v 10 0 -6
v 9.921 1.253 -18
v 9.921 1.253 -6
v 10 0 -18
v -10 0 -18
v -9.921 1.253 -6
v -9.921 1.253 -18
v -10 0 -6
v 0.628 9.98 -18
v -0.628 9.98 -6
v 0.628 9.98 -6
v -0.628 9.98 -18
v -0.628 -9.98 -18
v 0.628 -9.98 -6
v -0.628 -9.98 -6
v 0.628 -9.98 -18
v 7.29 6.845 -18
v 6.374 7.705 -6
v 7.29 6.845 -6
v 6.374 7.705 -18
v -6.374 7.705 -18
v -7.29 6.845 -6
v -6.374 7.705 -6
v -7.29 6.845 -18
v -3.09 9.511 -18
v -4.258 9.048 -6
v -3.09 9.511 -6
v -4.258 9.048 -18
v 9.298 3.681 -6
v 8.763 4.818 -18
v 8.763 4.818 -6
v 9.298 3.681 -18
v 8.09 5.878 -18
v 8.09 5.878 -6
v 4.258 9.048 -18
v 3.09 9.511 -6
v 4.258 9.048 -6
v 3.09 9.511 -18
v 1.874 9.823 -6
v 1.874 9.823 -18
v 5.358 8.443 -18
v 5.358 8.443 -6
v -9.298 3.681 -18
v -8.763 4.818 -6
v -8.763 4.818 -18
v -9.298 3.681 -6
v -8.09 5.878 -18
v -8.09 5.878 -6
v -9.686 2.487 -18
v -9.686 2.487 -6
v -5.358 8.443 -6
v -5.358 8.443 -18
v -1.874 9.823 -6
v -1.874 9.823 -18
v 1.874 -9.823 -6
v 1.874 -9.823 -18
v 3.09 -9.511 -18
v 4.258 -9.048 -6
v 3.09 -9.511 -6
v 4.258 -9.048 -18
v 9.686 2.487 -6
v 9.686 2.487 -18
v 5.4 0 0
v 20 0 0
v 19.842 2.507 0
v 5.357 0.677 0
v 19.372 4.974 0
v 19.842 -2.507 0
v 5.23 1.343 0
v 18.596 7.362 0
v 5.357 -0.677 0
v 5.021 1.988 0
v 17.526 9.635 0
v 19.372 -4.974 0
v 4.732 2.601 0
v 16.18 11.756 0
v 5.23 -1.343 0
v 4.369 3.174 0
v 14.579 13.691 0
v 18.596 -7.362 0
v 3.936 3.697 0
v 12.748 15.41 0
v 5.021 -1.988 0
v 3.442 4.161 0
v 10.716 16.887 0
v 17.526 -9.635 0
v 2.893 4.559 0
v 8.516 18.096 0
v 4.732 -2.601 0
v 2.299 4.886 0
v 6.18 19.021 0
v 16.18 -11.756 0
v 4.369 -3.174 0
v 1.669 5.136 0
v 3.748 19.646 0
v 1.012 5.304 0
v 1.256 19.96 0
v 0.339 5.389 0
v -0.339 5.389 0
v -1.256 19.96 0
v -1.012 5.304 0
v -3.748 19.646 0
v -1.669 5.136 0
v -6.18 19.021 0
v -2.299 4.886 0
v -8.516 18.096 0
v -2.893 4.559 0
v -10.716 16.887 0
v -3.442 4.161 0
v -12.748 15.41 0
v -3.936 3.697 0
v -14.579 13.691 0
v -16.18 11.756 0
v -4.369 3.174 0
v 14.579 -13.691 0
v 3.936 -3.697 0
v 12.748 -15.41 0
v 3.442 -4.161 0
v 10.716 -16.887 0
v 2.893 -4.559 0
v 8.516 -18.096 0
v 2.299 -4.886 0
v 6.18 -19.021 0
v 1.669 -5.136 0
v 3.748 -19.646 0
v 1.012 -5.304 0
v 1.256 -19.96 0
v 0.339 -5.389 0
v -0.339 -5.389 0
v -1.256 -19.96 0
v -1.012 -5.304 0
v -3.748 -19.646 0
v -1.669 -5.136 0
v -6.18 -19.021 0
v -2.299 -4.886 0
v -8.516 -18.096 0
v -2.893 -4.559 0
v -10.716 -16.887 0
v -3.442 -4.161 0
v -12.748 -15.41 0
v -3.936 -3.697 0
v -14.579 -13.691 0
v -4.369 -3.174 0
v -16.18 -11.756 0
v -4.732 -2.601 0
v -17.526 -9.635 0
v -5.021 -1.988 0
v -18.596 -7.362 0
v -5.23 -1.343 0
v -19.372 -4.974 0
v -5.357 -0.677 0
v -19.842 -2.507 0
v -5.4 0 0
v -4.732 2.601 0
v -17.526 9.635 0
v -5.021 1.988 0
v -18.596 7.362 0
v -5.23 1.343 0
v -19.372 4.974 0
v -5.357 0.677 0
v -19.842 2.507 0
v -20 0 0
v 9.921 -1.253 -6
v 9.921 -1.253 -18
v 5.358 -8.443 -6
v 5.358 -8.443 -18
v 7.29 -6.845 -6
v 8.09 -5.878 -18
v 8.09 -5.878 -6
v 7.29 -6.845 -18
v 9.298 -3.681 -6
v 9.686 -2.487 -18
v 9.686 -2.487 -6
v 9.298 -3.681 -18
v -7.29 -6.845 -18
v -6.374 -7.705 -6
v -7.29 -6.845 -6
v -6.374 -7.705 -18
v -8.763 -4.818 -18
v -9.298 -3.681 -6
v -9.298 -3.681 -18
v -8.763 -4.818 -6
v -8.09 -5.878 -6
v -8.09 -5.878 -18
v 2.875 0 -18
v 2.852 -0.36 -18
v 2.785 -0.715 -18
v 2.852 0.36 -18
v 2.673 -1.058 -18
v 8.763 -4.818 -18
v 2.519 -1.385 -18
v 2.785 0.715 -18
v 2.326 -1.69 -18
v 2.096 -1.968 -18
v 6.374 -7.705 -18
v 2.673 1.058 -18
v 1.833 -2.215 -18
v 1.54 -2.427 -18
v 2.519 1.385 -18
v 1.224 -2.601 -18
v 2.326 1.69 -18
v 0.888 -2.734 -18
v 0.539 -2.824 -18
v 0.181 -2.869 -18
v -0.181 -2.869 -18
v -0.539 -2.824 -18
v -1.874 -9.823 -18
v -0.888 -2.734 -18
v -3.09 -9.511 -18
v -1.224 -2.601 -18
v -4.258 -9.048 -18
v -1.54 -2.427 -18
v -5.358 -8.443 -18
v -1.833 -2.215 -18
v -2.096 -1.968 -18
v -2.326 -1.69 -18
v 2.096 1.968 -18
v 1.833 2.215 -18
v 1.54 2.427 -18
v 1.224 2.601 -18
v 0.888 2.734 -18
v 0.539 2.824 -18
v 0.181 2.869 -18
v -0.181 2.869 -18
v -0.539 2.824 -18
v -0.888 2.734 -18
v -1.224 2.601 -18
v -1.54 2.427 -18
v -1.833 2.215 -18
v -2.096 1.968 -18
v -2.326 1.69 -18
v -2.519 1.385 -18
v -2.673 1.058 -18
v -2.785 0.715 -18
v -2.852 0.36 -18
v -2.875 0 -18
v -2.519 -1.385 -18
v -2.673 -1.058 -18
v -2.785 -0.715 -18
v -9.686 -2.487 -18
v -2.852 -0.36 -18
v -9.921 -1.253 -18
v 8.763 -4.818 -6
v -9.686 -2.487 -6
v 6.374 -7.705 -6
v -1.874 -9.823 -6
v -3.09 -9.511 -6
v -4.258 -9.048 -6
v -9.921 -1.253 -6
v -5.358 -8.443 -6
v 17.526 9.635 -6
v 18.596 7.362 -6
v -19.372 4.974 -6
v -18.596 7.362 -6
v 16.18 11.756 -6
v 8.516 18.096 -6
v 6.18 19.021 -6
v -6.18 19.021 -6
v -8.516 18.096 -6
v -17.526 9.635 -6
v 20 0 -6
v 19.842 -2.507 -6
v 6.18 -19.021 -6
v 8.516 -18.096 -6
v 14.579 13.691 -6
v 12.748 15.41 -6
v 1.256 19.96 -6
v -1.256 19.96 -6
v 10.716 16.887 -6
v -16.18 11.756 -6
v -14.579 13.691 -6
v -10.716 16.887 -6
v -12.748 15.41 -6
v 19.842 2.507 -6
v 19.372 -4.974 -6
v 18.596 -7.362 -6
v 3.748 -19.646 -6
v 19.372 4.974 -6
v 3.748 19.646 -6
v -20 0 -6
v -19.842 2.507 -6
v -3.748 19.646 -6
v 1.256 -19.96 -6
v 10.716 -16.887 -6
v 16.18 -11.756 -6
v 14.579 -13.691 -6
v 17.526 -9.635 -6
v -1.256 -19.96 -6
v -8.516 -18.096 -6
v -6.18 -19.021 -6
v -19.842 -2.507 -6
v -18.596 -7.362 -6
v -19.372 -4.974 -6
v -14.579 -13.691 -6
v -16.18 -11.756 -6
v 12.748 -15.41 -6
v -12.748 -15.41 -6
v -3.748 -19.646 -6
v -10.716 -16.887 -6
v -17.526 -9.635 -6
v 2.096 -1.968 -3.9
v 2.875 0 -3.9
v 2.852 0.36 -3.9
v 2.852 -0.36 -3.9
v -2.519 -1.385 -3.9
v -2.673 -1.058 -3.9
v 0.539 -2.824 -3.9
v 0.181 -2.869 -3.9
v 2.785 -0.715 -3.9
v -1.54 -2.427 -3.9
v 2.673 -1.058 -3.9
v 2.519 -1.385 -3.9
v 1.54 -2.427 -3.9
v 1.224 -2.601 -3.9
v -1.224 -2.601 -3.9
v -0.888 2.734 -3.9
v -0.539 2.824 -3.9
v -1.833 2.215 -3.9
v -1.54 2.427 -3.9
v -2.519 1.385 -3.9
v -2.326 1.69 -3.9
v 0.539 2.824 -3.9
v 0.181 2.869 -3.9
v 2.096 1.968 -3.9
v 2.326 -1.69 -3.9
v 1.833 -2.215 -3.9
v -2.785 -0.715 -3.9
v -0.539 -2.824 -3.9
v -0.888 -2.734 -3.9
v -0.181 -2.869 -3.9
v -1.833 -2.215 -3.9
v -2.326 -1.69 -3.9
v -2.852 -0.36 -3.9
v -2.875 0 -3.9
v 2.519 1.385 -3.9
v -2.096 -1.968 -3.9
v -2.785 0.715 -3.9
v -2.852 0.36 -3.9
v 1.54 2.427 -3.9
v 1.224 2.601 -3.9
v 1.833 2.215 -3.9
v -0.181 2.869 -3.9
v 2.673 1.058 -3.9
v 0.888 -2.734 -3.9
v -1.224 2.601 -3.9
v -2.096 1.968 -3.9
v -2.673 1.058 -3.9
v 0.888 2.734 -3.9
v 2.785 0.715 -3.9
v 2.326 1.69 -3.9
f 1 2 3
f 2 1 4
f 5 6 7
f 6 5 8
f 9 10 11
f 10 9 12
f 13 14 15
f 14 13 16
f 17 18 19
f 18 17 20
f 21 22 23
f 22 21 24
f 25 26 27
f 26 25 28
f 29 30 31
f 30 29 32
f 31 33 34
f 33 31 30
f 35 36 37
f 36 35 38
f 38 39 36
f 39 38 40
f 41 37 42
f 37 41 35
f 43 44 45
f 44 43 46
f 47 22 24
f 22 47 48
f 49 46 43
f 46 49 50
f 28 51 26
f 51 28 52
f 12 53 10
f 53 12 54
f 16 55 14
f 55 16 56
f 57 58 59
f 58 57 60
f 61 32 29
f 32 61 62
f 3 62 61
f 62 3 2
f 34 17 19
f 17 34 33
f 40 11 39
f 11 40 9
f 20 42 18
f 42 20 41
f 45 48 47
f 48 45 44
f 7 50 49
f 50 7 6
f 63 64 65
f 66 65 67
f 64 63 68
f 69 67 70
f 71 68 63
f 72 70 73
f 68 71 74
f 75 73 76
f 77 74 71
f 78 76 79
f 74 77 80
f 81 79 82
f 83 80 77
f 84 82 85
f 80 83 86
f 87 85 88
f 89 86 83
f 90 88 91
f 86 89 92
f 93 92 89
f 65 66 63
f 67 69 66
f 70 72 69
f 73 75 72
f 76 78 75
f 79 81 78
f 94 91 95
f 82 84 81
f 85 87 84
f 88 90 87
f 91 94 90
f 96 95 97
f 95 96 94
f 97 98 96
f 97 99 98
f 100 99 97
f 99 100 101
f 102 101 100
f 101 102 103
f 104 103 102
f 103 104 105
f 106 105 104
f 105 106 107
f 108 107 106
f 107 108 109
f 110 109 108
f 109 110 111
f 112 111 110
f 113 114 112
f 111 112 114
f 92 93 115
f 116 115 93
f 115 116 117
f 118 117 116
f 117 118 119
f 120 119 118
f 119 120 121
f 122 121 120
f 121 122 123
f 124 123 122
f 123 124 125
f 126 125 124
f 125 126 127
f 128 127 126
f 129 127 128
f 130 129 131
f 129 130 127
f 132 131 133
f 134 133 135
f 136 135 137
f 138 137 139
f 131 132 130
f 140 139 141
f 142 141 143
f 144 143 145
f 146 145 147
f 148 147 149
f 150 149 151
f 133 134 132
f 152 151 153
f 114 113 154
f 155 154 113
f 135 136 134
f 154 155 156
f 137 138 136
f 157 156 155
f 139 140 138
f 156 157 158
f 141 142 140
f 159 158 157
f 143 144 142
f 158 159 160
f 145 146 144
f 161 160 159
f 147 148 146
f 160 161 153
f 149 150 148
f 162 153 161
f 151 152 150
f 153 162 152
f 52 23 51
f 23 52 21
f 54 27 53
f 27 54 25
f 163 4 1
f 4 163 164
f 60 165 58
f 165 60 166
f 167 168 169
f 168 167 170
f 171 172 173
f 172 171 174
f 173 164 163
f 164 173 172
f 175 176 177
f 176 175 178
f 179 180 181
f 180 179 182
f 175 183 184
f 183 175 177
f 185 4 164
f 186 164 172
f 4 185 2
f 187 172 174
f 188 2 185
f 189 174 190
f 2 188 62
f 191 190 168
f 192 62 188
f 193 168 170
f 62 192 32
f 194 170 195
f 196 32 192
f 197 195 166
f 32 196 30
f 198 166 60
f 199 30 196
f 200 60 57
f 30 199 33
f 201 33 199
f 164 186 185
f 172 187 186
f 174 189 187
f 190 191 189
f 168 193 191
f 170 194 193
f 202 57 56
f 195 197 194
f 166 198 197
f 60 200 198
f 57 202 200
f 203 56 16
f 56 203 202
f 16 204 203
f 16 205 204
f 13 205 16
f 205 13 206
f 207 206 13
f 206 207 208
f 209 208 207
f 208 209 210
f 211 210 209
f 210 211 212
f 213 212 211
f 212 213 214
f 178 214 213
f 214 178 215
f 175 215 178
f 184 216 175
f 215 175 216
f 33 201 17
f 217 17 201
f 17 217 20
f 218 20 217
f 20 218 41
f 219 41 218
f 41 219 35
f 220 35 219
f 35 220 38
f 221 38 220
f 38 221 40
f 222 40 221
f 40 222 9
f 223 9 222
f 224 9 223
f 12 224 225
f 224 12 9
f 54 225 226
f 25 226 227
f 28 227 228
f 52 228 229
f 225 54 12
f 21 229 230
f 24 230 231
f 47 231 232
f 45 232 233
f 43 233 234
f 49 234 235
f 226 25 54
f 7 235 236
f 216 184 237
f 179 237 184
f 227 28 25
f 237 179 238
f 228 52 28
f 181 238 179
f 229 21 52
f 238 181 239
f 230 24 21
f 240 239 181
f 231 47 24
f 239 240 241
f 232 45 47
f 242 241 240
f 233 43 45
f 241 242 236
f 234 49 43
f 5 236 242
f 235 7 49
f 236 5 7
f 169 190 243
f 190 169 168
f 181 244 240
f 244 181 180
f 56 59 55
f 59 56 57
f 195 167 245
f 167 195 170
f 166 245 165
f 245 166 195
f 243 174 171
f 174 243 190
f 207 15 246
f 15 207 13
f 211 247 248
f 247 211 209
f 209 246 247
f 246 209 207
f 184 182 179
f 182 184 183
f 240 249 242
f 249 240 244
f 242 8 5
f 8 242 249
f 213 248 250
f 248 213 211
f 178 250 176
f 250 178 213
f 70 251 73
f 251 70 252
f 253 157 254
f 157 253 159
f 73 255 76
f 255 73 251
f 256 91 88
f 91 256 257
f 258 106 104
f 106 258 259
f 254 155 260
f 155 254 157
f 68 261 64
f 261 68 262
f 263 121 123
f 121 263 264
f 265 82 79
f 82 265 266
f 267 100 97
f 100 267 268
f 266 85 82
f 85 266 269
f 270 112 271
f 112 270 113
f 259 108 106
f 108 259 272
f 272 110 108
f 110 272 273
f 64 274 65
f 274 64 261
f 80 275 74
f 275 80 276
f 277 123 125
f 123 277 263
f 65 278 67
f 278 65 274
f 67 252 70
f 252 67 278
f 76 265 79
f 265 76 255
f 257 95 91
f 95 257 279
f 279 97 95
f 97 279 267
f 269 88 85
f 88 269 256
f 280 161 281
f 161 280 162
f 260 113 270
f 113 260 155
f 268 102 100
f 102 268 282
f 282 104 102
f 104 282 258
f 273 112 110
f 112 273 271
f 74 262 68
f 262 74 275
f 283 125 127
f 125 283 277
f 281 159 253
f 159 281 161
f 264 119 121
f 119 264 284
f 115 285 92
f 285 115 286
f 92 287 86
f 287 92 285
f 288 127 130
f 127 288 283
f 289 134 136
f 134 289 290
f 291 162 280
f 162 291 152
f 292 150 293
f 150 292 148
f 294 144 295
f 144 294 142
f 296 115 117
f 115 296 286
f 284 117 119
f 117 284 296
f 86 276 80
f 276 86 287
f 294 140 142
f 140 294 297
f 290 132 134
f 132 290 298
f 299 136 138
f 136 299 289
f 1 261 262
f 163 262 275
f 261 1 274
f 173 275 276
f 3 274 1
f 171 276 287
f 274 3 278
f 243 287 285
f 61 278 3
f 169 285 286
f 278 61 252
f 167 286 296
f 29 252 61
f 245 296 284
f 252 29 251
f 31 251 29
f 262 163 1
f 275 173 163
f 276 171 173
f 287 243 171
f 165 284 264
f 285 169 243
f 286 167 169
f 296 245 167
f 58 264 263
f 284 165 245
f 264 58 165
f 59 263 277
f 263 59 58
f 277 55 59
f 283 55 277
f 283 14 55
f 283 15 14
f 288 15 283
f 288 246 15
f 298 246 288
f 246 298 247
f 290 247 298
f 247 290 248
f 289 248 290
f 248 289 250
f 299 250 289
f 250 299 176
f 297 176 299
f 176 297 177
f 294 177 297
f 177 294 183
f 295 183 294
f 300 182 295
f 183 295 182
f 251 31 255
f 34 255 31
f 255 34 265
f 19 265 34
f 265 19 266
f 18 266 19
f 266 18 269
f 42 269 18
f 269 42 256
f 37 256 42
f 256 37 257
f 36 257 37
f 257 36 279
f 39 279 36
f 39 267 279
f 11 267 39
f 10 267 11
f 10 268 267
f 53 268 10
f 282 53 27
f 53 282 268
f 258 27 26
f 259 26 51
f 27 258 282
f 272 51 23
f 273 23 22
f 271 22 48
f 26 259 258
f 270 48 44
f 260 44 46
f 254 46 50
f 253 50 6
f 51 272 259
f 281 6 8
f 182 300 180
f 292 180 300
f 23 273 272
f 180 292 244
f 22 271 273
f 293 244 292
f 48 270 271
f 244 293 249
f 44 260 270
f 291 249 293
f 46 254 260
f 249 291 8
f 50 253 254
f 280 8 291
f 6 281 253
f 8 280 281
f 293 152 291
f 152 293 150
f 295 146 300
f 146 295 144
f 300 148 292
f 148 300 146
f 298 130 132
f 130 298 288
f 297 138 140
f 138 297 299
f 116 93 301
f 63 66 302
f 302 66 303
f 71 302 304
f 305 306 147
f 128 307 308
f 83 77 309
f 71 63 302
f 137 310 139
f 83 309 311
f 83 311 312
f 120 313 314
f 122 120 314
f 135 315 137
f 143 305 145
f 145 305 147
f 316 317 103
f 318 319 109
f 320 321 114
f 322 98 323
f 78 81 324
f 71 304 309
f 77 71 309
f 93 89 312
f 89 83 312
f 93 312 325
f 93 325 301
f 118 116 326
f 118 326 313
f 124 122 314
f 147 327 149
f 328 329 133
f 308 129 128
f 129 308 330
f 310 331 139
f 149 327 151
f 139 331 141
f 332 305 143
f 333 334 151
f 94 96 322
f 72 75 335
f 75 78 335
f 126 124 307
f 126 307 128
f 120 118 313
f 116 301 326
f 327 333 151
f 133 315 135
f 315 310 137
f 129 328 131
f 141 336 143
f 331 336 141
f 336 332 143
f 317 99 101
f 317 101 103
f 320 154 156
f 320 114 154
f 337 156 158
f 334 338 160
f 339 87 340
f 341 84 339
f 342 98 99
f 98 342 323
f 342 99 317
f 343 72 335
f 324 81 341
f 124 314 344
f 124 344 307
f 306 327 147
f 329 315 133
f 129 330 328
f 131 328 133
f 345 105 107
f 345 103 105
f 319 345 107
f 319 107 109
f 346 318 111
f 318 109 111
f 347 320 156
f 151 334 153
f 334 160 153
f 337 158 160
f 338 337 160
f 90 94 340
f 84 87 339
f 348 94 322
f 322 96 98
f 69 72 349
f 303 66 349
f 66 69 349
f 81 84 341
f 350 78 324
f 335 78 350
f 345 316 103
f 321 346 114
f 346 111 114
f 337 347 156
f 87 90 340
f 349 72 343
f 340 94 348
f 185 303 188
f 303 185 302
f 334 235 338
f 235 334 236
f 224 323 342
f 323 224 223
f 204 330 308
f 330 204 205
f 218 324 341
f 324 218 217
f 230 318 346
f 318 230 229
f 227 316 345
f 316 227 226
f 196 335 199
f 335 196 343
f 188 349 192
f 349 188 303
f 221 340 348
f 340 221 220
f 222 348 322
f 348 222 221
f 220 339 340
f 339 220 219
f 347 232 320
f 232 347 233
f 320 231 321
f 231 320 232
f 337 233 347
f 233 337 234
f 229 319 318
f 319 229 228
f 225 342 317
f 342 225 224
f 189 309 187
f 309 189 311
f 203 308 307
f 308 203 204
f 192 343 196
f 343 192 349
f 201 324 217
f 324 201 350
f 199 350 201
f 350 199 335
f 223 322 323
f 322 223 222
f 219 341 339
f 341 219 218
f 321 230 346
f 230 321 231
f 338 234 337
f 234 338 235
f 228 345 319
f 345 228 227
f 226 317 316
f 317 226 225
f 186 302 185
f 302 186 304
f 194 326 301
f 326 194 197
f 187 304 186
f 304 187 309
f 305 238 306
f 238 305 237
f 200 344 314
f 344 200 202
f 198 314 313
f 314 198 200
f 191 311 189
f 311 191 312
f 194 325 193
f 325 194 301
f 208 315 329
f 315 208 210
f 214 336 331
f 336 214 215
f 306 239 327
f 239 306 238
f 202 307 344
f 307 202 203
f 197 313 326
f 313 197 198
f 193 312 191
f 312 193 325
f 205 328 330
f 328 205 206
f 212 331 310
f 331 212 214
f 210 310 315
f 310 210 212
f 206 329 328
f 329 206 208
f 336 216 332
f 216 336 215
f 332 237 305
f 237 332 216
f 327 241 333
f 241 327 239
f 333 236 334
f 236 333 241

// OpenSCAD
$fn = 50;


difference() {
	union() {
		translate(v = [0, 0, -18.0000000000]) {
			cylinder(h = 18, r = 10.0000000000);
		}
		translate(v = [0, 0, -6.0000000000]) {
			cylinder(h = 6, r = 20.0000000000);
		}
	}
	union() {
		translate(v = [0, 0, 0]) {
			rotate(a = [0, 0, 0]) {
				difference() {
					union() {
						#translate(v = [0, 0, -18.0000000000]) {
							cylinder(h = 18, r = 2.6000000000);
						}
						#translate(v = [0, 0, -3.9000000000]) {
							cylinder(h = 3.9000000000, r1 = 2.8750000000, r2 = 5.4000000000);
						}
						#translate(v = [0, 0, -18.0000000000]) {
							cylinder(h = 18, r = 2.8750000000);
						}
						#translate(v = [0, 0, -18.0000000000]) {
							cylinder(h = 18, r = 2.6000000000);
						}
					}
					union();
				}
			}
		}
	}
}
